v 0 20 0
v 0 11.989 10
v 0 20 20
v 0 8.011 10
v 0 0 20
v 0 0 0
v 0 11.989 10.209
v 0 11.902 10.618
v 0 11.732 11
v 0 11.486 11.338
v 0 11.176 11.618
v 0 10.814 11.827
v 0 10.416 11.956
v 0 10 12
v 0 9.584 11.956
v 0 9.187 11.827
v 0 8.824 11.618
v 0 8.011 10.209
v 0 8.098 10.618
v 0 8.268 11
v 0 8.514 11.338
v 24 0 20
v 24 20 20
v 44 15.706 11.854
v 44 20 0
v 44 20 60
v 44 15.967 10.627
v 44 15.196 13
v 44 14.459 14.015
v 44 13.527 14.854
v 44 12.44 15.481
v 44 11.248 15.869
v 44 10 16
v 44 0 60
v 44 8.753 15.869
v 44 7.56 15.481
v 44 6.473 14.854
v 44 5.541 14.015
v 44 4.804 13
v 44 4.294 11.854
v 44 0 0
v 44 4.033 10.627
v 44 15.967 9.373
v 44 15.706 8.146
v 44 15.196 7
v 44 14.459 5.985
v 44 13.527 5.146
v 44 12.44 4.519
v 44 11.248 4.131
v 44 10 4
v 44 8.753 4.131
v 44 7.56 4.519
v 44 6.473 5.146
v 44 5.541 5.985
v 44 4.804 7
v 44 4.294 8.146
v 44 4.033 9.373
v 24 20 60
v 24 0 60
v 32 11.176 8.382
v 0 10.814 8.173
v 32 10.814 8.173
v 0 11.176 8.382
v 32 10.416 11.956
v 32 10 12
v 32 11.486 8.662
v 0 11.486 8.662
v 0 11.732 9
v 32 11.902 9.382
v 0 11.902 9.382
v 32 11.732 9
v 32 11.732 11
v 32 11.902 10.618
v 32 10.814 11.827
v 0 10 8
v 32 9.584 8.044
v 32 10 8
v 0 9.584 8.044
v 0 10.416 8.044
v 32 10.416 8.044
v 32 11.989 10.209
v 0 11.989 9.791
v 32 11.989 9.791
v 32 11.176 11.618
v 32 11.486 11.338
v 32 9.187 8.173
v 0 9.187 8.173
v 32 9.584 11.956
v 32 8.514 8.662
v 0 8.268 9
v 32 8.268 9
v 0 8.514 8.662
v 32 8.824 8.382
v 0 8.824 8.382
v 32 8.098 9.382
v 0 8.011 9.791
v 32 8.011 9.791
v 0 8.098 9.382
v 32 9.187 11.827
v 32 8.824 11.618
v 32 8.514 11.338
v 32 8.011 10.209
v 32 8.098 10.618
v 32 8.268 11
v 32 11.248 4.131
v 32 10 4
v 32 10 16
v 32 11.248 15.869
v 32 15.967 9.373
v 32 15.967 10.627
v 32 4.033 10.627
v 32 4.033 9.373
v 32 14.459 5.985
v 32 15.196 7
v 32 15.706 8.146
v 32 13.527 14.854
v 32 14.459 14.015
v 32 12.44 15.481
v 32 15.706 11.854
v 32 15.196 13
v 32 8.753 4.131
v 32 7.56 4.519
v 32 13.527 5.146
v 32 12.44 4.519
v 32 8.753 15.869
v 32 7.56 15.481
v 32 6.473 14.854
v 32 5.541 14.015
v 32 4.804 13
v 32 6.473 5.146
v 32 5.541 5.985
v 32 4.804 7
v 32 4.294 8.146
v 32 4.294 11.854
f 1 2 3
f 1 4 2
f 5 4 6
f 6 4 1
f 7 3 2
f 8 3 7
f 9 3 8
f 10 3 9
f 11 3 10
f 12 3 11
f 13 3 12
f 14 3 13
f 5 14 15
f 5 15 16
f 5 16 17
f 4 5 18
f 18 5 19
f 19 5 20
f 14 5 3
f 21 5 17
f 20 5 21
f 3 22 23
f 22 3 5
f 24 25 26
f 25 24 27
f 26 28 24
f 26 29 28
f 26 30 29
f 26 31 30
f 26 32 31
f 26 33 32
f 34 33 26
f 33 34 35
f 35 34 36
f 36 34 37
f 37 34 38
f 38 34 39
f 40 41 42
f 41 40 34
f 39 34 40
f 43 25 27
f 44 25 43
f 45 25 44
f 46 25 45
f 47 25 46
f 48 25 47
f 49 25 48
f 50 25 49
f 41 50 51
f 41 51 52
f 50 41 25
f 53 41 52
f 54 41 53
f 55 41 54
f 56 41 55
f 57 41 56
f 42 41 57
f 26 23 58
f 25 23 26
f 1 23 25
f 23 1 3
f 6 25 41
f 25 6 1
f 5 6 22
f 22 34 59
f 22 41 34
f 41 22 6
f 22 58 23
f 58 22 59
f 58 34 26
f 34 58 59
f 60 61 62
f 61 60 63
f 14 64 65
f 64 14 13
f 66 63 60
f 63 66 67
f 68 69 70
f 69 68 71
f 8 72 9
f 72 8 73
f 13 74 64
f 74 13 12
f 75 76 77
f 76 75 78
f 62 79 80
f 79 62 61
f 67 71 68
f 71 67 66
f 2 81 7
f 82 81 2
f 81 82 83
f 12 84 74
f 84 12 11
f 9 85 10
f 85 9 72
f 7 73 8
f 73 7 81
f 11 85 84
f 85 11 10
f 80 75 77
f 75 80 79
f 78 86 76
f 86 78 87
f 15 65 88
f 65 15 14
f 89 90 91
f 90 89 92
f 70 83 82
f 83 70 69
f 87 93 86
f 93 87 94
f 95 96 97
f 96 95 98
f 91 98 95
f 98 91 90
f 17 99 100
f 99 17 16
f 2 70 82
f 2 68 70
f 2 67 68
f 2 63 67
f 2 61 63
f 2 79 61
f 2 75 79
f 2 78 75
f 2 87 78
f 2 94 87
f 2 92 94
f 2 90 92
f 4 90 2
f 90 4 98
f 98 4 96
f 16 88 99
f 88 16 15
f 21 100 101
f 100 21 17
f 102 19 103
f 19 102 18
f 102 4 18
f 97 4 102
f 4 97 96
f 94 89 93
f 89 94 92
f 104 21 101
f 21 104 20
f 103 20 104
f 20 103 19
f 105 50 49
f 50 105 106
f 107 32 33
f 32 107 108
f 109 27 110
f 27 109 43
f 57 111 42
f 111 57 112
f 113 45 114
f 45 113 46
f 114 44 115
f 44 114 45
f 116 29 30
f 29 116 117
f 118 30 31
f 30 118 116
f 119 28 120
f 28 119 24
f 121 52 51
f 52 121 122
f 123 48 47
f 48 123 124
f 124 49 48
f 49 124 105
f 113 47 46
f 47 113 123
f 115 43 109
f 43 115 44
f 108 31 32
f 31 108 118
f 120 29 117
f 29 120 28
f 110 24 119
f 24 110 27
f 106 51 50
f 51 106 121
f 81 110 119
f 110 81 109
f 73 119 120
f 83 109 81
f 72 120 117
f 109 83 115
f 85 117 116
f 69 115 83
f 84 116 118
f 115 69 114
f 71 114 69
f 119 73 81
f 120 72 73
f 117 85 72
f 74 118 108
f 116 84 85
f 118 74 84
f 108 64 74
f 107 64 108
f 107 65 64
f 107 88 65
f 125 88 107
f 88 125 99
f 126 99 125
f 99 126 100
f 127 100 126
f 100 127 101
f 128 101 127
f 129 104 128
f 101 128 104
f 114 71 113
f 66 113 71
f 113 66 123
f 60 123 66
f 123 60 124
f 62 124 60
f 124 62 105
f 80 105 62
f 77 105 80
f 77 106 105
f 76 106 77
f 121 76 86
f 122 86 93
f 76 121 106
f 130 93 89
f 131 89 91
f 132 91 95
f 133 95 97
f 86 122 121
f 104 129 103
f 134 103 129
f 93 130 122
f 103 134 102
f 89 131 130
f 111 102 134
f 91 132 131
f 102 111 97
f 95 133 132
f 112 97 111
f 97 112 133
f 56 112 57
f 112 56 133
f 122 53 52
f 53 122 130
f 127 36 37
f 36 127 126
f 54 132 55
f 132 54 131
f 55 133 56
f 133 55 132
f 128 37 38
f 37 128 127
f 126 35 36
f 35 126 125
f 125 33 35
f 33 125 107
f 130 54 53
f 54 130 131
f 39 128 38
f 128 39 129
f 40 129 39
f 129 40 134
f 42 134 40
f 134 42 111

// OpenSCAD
$fn = 30;

module screwHole() {
    union() {cylinder(r=2, h = 44);
    translate([0,0,32 ]) cylinder(r = 6, h = 14);    
    }
}



module clip() {
    union() {
    translate([0,0,0])  cube([44, 20, 20]);
    translate([24,0, 20]) cube([20,20,40]);
} }

difference() {
    clip();   
    translate([0, 10, 10]) rotate([0,90,0]) screwHole();
    
}
